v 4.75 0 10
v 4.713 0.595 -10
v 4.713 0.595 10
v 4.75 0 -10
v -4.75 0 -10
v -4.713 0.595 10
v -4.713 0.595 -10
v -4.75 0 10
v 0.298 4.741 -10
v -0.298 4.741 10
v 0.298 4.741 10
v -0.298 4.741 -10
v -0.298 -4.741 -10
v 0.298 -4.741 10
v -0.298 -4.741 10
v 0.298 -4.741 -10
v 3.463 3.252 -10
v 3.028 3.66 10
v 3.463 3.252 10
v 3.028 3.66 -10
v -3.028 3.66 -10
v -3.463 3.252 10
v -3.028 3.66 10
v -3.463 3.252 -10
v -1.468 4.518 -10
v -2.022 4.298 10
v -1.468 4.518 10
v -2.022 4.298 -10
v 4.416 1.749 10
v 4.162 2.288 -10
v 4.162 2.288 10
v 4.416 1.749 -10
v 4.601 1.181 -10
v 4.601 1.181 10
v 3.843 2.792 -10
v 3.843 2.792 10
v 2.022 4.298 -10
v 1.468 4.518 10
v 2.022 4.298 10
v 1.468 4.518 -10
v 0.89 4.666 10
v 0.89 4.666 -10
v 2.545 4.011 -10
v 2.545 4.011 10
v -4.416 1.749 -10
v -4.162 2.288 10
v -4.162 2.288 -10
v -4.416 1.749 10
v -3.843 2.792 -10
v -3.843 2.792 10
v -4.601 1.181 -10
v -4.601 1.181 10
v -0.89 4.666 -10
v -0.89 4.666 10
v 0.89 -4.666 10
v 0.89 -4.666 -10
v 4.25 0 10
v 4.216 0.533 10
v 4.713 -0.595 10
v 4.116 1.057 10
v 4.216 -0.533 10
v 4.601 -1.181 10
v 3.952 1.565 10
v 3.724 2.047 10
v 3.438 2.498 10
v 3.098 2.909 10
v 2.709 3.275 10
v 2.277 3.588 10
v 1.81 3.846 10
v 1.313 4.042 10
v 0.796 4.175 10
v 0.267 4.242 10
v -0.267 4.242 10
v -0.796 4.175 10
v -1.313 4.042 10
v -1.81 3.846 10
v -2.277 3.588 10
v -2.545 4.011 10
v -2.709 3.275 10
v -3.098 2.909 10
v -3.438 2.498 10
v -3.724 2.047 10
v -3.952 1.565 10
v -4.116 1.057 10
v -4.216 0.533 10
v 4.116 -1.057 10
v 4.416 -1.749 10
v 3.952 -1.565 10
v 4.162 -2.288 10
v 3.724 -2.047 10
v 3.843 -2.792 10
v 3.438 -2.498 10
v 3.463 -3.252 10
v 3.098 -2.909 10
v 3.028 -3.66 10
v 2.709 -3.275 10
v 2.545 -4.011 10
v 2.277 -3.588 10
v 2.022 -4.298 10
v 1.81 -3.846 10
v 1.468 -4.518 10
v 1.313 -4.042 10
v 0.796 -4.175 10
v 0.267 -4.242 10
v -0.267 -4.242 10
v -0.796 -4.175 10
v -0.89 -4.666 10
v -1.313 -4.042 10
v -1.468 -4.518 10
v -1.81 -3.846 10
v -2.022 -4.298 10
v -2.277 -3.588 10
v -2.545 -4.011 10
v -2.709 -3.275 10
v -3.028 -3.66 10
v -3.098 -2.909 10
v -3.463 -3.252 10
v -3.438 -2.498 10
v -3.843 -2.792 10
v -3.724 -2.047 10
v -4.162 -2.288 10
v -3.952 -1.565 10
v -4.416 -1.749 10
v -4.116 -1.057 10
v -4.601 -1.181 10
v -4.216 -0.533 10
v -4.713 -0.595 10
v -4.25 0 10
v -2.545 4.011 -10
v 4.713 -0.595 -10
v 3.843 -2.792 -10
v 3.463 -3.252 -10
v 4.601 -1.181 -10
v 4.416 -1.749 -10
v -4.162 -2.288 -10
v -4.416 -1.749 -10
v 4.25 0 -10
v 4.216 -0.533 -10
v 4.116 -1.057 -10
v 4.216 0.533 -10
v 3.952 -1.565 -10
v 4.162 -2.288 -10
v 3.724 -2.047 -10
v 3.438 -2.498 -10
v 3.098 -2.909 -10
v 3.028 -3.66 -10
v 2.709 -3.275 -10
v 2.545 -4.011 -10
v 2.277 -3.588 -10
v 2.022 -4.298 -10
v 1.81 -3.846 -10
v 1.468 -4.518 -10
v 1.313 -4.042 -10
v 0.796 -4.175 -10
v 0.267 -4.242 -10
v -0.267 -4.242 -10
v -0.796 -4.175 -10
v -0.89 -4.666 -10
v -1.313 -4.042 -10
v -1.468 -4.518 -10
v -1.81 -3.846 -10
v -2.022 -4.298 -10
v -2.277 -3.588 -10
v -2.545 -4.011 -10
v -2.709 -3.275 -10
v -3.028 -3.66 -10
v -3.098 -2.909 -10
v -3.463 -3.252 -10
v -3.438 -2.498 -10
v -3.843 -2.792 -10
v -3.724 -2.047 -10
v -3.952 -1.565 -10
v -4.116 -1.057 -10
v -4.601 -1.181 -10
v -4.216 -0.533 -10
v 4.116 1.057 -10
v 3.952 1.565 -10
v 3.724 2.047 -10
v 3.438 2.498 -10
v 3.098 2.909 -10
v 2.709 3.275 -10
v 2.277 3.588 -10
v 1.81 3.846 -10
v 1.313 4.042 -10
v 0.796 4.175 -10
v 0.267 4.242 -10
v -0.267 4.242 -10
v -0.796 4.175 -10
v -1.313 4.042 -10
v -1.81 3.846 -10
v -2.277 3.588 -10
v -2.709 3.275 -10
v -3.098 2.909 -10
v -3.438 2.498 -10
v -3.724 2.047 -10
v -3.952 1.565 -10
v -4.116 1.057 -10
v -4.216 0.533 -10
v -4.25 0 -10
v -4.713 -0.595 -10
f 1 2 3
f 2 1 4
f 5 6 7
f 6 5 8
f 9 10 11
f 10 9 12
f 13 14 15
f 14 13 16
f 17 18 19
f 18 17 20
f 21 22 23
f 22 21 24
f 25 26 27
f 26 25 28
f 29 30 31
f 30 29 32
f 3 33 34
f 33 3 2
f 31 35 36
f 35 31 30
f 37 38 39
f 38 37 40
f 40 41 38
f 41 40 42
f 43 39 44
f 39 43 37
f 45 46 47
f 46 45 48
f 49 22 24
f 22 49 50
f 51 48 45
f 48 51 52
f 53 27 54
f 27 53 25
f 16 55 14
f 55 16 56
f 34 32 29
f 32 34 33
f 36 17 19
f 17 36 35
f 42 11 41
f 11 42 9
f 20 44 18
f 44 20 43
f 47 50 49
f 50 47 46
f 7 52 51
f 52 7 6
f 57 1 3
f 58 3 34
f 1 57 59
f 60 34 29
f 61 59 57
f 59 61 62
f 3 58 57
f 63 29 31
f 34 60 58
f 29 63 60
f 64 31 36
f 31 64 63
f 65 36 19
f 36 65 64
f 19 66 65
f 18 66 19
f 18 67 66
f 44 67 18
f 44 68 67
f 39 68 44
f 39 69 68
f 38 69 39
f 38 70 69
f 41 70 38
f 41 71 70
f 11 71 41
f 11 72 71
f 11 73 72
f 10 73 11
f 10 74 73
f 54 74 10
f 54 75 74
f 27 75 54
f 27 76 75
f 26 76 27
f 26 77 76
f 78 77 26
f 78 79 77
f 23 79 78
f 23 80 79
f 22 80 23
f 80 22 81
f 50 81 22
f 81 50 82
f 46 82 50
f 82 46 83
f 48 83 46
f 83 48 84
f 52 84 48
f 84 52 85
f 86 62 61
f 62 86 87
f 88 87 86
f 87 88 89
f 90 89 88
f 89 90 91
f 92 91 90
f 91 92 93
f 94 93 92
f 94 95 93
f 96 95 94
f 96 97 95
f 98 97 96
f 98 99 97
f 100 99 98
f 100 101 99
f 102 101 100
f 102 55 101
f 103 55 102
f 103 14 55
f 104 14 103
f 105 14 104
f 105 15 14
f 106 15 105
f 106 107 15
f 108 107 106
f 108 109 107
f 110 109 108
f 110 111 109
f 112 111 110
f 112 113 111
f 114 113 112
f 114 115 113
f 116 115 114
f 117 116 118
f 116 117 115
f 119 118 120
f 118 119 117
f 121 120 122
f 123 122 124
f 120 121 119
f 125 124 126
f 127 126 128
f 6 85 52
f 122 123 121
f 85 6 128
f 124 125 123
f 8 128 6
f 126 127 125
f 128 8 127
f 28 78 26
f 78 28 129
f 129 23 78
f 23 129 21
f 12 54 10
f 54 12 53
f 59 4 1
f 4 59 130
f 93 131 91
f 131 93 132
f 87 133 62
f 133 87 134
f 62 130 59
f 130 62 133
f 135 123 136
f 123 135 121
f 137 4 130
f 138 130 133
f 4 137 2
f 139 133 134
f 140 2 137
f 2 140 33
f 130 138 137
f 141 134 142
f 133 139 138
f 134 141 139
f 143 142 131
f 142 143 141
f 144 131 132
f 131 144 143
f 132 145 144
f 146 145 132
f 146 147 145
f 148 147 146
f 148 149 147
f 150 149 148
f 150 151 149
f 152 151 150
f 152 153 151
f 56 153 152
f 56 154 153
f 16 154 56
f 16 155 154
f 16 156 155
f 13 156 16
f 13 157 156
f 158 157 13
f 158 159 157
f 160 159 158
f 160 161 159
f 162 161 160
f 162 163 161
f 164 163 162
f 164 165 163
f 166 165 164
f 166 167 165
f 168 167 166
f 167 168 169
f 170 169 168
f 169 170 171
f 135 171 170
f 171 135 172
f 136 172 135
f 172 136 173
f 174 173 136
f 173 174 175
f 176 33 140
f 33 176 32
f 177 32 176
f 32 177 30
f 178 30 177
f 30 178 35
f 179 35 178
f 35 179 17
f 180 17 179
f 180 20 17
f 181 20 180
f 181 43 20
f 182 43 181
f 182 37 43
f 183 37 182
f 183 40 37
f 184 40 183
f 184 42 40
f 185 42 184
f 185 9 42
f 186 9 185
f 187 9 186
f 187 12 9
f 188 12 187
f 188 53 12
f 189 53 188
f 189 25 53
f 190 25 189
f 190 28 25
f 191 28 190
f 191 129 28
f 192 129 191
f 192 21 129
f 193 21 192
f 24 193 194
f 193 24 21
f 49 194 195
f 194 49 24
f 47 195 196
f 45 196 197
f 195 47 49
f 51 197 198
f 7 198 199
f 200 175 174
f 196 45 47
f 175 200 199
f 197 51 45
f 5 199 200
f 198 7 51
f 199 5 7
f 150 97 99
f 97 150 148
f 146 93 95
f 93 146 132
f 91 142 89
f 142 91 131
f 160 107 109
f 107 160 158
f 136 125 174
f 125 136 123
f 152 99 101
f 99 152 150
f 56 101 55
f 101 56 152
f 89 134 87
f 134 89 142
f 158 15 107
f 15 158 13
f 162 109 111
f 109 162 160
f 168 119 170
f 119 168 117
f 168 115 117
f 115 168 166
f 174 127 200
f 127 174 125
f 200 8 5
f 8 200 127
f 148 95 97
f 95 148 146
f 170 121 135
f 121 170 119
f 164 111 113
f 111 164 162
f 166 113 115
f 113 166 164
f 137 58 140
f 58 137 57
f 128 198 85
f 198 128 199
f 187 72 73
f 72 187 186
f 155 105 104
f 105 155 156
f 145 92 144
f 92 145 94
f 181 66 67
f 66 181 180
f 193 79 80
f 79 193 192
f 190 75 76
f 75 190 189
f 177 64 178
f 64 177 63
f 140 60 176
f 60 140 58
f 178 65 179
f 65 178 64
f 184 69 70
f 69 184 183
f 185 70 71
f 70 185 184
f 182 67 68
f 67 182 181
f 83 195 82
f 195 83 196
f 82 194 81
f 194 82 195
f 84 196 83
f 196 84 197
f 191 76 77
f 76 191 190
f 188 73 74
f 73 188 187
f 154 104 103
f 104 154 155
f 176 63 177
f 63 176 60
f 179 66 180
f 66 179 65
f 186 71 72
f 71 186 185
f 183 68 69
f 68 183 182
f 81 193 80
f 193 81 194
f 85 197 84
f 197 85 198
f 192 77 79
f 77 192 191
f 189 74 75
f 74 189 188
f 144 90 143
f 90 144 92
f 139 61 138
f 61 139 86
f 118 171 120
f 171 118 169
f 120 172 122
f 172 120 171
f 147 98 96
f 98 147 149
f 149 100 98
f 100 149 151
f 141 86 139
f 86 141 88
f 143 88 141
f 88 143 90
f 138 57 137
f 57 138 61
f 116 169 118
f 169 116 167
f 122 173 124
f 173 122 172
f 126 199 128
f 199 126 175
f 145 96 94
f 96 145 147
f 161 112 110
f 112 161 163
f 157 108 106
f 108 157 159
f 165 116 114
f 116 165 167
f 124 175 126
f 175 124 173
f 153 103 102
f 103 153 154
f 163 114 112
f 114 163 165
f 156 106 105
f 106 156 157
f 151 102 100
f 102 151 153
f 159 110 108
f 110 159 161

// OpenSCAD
$fn = 50;


difference() {
	union() {
		translate(v = [0, 0, -10.0000000000]) {
			cylinder(h = 20, r = 4.7500000000);
		}
	}
	union() {
		translate(v = [0, 0, -100.0000000000]) {
			cylinder(h = 200, r = 4.2500000000);
		}
	}
}
